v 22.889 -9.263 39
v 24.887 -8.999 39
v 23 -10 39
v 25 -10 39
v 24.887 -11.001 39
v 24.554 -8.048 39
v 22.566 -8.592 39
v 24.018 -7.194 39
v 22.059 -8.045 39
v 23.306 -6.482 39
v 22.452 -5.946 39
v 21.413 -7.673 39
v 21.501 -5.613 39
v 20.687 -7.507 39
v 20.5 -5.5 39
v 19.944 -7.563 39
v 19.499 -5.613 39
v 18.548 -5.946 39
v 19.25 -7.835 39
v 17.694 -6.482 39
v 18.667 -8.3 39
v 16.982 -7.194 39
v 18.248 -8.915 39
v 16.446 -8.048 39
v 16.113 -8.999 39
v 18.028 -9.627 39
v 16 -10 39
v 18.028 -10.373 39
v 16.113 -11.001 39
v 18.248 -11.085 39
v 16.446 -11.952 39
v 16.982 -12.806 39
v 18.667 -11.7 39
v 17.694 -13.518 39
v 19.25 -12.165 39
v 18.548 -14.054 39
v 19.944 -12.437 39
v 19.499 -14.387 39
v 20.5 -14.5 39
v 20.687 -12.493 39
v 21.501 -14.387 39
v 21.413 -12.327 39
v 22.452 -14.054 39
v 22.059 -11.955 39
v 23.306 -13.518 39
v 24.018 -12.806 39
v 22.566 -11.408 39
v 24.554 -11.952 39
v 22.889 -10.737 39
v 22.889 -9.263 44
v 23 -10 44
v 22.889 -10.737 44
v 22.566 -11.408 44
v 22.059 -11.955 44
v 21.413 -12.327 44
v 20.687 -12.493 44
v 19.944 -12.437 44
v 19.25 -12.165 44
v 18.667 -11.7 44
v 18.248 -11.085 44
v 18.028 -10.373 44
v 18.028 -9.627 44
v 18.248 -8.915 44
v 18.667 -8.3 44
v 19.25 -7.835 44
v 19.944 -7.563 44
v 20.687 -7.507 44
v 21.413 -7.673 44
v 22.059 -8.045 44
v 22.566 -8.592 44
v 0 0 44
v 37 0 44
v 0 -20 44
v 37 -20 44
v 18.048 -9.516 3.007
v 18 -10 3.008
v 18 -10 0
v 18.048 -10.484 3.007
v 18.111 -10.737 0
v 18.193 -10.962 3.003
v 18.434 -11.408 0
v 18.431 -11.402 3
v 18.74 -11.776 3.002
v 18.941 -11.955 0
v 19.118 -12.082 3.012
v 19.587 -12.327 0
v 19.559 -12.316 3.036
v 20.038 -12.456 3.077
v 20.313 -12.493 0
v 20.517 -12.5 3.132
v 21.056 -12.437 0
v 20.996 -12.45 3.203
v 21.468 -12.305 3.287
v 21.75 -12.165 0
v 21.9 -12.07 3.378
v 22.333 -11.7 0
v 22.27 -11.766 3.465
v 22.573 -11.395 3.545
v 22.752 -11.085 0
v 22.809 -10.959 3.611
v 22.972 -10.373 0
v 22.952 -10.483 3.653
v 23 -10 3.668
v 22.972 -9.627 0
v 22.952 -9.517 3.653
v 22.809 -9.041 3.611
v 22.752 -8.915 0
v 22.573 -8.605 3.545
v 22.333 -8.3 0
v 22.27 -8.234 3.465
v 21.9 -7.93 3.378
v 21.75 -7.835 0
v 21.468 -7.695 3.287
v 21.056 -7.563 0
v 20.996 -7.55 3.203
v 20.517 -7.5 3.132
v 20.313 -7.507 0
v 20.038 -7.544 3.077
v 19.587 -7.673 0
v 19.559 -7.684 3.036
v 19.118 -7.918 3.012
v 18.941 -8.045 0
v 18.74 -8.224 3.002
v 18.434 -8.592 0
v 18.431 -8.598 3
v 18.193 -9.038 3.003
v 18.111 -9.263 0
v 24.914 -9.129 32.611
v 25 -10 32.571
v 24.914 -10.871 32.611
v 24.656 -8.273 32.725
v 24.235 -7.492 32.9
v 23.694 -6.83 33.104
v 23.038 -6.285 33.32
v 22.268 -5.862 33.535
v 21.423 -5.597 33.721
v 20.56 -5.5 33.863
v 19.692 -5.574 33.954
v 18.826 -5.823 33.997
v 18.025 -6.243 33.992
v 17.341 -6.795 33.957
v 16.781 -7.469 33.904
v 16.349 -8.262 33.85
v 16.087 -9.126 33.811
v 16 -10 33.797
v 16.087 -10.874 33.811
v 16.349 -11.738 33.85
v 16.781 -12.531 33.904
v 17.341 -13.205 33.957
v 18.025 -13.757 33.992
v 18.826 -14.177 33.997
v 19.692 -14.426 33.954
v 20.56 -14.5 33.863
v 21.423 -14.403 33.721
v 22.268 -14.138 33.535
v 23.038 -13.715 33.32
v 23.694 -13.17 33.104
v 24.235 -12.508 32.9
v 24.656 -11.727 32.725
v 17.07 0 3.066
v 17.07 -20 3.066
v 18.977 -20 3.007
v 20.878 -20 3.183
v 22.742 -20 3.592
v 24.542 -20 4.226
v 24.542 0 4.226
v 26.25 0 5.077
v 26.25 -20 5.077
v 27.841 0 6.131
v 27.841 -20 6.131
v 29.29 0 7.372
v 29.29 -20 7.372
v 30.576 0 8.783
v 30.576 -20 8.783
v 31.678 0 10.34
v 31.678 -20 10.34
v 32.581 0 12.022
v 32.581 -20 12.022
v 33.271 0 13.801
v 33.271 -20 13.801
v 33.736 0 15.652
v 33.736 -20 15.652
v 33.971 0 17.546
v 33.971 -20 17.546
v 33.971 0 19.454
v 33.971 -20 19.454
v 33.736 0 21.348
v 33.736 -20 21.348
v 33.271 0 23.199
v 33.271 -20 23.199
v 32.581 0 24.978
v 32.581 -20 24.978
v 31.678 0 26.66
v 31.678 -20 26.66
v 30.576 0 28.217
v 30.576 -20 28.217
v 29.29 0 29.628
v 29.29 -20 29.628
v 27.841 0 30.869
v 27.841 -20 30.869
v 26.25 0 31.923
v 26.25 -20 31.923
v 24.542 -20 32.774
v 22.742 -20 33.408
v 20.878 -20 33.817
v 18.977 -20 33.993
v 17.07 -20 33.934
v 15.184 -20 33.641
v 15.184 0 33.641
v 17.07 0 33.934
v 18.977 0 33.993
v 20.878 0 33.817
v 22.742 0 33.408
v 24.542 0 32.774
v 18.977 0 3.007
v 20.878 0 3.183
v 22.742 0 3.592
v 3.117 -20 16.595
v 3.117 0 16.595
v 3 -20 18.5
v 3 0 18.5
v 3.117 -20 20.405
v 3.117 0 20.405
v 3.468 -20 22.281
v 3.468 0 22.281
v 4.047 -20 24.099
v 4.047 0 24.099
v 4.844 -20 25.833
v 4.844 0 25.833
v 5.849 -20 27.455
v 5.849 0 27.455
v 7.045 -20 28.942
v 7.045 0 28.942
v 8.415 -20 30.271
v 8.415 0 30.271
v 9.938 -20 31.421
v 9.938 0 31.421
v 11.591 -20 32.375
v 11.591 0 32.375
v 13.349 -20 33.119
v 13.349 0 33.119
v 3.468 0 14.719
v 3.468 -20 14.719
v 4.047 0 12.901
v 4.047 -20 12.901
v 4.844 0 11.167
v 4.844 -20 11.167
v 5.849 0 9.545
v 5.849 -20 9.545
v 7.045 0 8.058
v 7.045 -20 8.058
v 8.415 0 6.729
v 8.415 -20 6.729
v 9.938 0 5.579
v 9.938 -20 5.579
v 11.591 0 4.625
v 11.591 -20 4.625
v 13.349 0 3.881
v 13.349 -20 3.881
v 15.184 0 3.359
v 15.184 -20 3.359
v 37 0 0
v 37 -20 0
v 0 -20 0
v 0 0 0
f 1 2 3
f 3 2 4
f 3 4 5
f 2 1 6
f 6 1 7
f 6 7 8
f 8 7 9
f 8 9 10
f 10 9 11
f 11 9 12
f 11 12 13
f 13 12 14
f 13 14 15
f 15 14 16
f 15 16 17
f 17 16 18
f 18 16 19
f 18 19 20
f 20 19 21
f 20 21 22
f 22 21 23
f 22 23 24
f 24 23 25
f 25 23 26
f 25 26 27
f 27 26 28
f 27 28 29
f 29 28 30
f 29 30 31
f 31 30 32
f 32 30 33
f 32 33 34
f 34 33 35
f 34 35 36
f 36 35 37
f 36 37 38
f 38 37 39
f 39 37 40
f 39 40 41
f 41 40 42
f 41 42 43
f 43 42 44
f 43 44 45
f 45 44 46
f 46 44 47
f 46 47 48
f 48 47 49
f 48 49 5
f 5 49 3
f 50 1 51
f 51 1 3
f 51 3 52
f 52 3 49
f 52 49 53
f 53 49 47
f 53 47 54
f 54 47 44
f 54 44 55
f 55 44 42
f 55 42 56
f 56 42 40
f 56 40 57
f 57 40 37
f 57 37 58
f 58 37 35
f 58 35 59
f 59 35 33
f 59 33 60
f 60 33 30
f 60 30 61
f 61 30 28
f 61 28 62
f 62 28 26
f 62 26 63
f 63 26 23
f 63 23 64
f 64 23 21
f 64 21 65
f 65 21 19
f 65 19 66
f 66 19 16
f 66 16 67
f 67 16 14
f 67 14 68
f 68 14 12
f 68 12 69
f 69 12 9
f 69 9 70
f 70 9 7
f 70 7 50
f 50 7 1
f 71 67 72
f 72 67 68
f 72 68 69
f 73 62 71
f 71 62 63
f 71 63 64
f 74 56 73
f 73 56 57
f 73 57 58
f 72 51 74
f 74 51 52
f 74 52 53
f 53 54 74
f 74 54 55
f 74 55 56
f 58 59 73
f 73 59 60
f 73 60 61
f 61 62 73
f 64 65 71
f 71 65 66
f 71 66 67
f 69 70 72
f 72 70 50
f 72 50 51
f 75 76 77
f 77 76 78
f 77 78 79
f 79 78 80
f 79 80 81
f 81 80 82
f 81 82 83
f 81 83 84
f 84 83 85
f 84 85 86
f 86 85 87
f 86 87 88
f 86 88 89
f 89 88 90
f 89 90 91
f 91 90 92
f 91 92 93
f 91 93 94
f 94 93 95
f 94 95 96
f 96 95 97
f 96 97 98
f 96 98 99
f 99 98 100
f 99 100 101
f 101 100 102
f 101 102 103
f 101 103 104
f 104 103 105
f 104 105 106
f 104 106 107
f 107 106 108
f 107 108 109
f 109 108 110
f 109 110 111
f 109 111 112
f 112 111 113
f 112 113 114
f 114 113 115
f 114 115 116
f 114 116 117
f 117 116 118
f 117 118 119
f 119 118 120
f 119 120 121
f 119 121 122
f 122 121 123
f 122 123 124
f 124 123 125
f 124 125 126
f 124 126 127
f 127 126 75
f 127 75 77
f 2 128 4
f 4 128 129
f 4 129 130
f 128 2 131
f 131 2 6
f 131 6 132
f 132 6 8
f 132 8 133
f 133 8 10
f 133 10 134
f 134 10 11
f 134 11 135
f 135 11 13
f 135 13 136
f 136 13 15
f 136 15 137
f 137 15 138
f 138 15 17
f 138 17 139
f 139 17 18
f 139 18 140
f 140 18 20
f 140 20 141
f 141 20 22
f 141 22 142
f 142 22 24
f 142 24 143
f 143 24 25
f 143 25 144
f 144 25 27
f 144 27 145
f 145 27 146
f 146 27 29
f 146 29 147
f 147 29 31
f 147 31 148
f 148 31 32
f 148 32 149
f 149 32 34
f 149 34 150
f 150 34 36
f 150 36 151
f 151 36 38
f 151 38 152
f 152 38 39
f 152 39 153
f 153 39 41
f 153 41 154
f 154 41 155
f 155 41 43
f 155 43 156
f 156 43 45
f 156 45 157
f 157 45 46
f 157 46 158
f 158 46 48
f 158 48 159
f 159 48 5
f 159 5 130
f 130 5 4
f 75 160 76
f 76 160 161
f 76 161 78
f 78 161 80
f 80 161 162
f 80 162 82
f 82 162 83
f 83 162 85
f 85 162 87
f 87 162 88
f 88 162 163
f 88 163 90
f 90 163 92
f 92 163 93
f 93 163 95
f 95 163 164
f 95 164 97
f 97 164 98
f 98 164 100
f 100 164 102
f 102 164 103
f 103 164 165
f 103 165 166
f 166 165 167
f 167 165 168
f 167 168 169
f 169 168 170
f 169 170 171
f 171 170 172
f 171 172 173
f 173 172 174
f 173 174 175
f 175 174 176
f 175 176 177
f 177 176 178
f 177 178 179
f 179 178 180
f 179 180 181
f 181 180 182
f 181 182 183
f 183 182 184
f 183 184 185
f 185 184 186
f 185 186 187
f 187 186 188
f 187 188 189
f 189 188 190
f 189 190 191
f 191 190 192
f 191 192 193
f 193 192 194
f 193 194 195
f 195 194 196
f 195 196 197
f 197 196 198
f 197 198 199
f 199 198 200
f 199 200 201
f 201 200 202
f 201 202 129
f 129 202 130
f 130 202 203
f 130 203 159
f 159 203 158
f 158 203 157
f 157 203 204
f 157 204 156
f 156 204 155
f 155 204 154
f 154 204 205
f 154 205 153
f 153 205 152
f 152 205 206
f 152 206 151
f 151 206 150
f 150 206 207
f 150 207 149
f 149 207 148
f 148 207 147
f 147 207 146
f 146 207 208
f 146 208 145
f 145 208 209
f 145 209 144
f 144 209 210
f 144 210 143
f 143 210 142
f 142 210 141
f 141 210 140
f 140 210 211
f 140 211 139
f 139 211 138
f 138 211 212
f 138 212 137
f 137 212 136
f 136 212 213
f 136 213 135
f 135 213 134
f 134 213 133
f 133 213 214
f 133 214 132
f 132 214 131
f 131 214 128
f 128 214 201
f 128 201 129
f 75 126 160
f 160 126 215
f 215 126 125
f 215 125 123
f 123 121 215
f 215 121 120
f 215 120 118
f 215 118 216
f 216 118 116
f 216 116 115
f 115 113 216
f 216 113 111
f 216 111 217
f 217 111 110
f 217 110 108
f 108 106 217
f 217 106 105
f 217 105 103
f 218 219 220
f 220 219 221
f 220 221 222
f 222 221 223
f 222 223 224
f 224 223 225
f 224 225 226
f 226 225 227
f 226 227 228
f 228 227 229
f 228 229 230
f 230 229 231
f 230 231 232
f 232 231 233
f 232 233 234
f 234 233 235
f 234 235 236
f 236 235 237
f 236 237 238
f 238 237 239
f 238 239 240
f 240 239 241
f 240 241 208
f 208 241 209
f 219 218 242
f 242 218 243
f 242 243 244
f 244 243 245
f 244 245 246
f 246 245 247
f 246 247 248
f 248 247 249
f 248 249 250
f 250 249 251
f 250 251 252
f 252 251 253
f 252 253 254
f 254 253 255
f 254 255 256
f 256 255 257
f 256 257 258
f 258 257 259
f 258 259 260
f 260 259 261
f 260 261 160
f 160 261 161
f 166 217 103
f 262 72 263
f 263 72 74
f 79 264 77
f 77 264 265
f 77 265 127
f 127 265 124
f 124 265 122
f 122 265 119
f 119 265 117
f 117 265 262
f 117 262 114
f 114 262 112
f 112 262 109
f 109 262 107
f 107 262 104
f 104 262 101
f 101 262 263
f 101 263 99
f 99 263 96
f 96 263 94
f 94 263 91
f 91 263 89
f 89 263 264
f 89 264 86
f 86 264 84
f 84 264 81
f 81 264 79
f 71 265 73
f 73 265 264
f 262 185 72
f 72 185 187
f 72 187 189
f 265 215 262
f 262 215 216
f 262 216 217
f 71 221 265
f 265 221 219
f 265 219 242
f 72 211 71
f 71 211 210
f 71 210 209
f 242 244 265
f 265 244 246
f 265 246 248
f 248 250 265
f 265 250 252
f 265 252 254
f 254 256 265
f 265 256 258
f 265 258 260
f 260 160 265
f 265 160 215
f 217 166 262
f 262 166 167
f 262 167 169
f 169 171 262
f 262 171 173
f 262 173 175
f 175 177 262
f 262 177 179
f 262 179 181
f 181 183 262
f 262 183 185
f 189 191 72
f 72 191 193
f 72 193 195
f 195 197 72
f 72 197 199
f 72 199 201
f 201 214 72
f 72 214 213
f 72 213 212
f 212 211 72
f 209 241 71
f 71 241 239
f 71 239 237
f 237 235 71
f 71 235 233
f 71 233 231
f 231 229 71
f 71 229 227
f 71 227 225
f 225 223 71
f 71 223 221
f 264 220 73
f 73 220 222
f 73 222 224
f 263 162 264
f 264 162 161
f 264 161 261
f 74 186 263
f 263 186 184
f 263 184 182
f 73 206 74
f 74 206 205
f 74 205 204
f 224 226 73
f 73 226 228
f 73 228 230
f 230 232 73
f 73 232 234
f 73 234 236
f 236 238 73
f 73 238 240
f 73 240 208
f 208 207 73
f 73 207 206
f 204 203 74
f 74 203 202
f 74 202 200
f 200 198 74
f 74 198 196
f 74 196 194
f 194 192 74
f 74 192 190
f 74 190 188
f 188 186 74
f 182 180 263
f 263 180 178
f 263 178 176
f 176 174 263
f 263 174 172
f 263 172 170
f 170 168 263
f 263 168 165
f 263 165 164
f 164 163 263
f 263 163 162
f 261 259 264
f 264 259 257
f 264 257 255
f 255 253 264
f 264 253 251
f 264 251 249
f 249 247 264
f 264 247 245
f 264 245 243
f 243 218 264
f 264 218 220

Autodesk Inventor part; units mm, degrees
ref_plane "YZ Plane" through (0, 0, 0) normal (1, 0, 0) x (0, 1, 0)
ref_plane "XZ Plane" through (0, 0, 0) normal (0, 1, 0) x (-1, 0, 0)
ref_plane "XY Plane" through (0, 0, 0) normal (0, 0, 1) x (1, 0, 0)
sketch "Sketch1" plane through (0, 0, 0) normal (0, 1, 0) x (-1, 0, 0)
  line L0 (0, 0) -> (-37, 0)
  line L1 (-37, 0) -> (-37, 37)
  line L2 (-37, 37) -> (0, 37)
  line L3 (0, 37) -> (0, 0)
  circle A0 centre (-18.5, 18.5) radius 15.5
  point P0 (-18.5, 0)
  dimension "d0" = 37
  dimension "d1" = 37
  dimension "d2" = 18.5
  dimension "d3" = 18.5
  dimension "d4" = 31
extrude "Extrusion1" add sketch "Sketch1" against normal blind 20
sketch "Sketch3" plane through (0, 0, 37) normal (0, 0, 1) x (1, 0, 0)
  circle A0 centre (20.5, -10) radius 4.5
  point P0 (0, 0)
  dimension "d8" = 9
extrude "Extrusion2" cut sketch "Sketch3" against normal blind 5
sketch "Sketch4" plane through (37, 0, 0) normal (0, 0, -1) x (-1, 0, 0)
  circle A0 centre (16.5, -10) radius 4.5 projected
  circle A1 centre (16.5, -10) radius 2.5
  point P0 (37, 0)
  dimension "d11" = 5
extrude "Extrusion3" cut sketch "Sketch4" against normal blind 5 contours A1
sketch "Sketch5" plane through (0, 0, 37) normal (0, 0, 1) x (1, 0, 0)
  line L0 (37, 0) -> (0, 0) projected
  line L1 (0, -20) -> (37, -20) projected
  line L2 (0, 0) -> (37, 0)
  line L3 (37, 0) -> (37, -20)
  line L4 (37, -20) -> (0, -20)
  line L5 (0, -20) -> (0, 0)
  line L6 (0, 0) -> (0, -20) projected
  line L7 (0, 0) -> (37, 0)
  line L8 (37, 0) -> (37, -20)
  line L9 (37, -20) -> (0, -20)
  line L10 (0, -20) -> (0, 0)
  circle A0 centre (20.5, -10) radius 4.5
extrude "Extrusion4" add sketch "Sketch5" along normal blind 2
sketch "Sketch6" plane through (0, 0, 39) normal (0, 0, 1) x (1, 0, 0)
  line L0 (0, 0) -> (0, -20) projected
  line L1 (0, -20) -> (37, -20) projected
  line L2 (0, 0) -> (37, 0)
  line L3 (37, 0) -> (37, -20)
  line L4 (37, -20) -> (0, -20)
  line L5 (0, -20) -> (0, 0)
  circle A0 centre (20.5, -10) radius 2.5
extrude "Extrusion5" add sketch "Sketch6" along normal blind 5
equation "\"d0\" = d1"
equation "\"d2\" = 0.5 * d1"
equation "\"d3\" = 0.5 * d0"
properties part number "welco mount v02"
